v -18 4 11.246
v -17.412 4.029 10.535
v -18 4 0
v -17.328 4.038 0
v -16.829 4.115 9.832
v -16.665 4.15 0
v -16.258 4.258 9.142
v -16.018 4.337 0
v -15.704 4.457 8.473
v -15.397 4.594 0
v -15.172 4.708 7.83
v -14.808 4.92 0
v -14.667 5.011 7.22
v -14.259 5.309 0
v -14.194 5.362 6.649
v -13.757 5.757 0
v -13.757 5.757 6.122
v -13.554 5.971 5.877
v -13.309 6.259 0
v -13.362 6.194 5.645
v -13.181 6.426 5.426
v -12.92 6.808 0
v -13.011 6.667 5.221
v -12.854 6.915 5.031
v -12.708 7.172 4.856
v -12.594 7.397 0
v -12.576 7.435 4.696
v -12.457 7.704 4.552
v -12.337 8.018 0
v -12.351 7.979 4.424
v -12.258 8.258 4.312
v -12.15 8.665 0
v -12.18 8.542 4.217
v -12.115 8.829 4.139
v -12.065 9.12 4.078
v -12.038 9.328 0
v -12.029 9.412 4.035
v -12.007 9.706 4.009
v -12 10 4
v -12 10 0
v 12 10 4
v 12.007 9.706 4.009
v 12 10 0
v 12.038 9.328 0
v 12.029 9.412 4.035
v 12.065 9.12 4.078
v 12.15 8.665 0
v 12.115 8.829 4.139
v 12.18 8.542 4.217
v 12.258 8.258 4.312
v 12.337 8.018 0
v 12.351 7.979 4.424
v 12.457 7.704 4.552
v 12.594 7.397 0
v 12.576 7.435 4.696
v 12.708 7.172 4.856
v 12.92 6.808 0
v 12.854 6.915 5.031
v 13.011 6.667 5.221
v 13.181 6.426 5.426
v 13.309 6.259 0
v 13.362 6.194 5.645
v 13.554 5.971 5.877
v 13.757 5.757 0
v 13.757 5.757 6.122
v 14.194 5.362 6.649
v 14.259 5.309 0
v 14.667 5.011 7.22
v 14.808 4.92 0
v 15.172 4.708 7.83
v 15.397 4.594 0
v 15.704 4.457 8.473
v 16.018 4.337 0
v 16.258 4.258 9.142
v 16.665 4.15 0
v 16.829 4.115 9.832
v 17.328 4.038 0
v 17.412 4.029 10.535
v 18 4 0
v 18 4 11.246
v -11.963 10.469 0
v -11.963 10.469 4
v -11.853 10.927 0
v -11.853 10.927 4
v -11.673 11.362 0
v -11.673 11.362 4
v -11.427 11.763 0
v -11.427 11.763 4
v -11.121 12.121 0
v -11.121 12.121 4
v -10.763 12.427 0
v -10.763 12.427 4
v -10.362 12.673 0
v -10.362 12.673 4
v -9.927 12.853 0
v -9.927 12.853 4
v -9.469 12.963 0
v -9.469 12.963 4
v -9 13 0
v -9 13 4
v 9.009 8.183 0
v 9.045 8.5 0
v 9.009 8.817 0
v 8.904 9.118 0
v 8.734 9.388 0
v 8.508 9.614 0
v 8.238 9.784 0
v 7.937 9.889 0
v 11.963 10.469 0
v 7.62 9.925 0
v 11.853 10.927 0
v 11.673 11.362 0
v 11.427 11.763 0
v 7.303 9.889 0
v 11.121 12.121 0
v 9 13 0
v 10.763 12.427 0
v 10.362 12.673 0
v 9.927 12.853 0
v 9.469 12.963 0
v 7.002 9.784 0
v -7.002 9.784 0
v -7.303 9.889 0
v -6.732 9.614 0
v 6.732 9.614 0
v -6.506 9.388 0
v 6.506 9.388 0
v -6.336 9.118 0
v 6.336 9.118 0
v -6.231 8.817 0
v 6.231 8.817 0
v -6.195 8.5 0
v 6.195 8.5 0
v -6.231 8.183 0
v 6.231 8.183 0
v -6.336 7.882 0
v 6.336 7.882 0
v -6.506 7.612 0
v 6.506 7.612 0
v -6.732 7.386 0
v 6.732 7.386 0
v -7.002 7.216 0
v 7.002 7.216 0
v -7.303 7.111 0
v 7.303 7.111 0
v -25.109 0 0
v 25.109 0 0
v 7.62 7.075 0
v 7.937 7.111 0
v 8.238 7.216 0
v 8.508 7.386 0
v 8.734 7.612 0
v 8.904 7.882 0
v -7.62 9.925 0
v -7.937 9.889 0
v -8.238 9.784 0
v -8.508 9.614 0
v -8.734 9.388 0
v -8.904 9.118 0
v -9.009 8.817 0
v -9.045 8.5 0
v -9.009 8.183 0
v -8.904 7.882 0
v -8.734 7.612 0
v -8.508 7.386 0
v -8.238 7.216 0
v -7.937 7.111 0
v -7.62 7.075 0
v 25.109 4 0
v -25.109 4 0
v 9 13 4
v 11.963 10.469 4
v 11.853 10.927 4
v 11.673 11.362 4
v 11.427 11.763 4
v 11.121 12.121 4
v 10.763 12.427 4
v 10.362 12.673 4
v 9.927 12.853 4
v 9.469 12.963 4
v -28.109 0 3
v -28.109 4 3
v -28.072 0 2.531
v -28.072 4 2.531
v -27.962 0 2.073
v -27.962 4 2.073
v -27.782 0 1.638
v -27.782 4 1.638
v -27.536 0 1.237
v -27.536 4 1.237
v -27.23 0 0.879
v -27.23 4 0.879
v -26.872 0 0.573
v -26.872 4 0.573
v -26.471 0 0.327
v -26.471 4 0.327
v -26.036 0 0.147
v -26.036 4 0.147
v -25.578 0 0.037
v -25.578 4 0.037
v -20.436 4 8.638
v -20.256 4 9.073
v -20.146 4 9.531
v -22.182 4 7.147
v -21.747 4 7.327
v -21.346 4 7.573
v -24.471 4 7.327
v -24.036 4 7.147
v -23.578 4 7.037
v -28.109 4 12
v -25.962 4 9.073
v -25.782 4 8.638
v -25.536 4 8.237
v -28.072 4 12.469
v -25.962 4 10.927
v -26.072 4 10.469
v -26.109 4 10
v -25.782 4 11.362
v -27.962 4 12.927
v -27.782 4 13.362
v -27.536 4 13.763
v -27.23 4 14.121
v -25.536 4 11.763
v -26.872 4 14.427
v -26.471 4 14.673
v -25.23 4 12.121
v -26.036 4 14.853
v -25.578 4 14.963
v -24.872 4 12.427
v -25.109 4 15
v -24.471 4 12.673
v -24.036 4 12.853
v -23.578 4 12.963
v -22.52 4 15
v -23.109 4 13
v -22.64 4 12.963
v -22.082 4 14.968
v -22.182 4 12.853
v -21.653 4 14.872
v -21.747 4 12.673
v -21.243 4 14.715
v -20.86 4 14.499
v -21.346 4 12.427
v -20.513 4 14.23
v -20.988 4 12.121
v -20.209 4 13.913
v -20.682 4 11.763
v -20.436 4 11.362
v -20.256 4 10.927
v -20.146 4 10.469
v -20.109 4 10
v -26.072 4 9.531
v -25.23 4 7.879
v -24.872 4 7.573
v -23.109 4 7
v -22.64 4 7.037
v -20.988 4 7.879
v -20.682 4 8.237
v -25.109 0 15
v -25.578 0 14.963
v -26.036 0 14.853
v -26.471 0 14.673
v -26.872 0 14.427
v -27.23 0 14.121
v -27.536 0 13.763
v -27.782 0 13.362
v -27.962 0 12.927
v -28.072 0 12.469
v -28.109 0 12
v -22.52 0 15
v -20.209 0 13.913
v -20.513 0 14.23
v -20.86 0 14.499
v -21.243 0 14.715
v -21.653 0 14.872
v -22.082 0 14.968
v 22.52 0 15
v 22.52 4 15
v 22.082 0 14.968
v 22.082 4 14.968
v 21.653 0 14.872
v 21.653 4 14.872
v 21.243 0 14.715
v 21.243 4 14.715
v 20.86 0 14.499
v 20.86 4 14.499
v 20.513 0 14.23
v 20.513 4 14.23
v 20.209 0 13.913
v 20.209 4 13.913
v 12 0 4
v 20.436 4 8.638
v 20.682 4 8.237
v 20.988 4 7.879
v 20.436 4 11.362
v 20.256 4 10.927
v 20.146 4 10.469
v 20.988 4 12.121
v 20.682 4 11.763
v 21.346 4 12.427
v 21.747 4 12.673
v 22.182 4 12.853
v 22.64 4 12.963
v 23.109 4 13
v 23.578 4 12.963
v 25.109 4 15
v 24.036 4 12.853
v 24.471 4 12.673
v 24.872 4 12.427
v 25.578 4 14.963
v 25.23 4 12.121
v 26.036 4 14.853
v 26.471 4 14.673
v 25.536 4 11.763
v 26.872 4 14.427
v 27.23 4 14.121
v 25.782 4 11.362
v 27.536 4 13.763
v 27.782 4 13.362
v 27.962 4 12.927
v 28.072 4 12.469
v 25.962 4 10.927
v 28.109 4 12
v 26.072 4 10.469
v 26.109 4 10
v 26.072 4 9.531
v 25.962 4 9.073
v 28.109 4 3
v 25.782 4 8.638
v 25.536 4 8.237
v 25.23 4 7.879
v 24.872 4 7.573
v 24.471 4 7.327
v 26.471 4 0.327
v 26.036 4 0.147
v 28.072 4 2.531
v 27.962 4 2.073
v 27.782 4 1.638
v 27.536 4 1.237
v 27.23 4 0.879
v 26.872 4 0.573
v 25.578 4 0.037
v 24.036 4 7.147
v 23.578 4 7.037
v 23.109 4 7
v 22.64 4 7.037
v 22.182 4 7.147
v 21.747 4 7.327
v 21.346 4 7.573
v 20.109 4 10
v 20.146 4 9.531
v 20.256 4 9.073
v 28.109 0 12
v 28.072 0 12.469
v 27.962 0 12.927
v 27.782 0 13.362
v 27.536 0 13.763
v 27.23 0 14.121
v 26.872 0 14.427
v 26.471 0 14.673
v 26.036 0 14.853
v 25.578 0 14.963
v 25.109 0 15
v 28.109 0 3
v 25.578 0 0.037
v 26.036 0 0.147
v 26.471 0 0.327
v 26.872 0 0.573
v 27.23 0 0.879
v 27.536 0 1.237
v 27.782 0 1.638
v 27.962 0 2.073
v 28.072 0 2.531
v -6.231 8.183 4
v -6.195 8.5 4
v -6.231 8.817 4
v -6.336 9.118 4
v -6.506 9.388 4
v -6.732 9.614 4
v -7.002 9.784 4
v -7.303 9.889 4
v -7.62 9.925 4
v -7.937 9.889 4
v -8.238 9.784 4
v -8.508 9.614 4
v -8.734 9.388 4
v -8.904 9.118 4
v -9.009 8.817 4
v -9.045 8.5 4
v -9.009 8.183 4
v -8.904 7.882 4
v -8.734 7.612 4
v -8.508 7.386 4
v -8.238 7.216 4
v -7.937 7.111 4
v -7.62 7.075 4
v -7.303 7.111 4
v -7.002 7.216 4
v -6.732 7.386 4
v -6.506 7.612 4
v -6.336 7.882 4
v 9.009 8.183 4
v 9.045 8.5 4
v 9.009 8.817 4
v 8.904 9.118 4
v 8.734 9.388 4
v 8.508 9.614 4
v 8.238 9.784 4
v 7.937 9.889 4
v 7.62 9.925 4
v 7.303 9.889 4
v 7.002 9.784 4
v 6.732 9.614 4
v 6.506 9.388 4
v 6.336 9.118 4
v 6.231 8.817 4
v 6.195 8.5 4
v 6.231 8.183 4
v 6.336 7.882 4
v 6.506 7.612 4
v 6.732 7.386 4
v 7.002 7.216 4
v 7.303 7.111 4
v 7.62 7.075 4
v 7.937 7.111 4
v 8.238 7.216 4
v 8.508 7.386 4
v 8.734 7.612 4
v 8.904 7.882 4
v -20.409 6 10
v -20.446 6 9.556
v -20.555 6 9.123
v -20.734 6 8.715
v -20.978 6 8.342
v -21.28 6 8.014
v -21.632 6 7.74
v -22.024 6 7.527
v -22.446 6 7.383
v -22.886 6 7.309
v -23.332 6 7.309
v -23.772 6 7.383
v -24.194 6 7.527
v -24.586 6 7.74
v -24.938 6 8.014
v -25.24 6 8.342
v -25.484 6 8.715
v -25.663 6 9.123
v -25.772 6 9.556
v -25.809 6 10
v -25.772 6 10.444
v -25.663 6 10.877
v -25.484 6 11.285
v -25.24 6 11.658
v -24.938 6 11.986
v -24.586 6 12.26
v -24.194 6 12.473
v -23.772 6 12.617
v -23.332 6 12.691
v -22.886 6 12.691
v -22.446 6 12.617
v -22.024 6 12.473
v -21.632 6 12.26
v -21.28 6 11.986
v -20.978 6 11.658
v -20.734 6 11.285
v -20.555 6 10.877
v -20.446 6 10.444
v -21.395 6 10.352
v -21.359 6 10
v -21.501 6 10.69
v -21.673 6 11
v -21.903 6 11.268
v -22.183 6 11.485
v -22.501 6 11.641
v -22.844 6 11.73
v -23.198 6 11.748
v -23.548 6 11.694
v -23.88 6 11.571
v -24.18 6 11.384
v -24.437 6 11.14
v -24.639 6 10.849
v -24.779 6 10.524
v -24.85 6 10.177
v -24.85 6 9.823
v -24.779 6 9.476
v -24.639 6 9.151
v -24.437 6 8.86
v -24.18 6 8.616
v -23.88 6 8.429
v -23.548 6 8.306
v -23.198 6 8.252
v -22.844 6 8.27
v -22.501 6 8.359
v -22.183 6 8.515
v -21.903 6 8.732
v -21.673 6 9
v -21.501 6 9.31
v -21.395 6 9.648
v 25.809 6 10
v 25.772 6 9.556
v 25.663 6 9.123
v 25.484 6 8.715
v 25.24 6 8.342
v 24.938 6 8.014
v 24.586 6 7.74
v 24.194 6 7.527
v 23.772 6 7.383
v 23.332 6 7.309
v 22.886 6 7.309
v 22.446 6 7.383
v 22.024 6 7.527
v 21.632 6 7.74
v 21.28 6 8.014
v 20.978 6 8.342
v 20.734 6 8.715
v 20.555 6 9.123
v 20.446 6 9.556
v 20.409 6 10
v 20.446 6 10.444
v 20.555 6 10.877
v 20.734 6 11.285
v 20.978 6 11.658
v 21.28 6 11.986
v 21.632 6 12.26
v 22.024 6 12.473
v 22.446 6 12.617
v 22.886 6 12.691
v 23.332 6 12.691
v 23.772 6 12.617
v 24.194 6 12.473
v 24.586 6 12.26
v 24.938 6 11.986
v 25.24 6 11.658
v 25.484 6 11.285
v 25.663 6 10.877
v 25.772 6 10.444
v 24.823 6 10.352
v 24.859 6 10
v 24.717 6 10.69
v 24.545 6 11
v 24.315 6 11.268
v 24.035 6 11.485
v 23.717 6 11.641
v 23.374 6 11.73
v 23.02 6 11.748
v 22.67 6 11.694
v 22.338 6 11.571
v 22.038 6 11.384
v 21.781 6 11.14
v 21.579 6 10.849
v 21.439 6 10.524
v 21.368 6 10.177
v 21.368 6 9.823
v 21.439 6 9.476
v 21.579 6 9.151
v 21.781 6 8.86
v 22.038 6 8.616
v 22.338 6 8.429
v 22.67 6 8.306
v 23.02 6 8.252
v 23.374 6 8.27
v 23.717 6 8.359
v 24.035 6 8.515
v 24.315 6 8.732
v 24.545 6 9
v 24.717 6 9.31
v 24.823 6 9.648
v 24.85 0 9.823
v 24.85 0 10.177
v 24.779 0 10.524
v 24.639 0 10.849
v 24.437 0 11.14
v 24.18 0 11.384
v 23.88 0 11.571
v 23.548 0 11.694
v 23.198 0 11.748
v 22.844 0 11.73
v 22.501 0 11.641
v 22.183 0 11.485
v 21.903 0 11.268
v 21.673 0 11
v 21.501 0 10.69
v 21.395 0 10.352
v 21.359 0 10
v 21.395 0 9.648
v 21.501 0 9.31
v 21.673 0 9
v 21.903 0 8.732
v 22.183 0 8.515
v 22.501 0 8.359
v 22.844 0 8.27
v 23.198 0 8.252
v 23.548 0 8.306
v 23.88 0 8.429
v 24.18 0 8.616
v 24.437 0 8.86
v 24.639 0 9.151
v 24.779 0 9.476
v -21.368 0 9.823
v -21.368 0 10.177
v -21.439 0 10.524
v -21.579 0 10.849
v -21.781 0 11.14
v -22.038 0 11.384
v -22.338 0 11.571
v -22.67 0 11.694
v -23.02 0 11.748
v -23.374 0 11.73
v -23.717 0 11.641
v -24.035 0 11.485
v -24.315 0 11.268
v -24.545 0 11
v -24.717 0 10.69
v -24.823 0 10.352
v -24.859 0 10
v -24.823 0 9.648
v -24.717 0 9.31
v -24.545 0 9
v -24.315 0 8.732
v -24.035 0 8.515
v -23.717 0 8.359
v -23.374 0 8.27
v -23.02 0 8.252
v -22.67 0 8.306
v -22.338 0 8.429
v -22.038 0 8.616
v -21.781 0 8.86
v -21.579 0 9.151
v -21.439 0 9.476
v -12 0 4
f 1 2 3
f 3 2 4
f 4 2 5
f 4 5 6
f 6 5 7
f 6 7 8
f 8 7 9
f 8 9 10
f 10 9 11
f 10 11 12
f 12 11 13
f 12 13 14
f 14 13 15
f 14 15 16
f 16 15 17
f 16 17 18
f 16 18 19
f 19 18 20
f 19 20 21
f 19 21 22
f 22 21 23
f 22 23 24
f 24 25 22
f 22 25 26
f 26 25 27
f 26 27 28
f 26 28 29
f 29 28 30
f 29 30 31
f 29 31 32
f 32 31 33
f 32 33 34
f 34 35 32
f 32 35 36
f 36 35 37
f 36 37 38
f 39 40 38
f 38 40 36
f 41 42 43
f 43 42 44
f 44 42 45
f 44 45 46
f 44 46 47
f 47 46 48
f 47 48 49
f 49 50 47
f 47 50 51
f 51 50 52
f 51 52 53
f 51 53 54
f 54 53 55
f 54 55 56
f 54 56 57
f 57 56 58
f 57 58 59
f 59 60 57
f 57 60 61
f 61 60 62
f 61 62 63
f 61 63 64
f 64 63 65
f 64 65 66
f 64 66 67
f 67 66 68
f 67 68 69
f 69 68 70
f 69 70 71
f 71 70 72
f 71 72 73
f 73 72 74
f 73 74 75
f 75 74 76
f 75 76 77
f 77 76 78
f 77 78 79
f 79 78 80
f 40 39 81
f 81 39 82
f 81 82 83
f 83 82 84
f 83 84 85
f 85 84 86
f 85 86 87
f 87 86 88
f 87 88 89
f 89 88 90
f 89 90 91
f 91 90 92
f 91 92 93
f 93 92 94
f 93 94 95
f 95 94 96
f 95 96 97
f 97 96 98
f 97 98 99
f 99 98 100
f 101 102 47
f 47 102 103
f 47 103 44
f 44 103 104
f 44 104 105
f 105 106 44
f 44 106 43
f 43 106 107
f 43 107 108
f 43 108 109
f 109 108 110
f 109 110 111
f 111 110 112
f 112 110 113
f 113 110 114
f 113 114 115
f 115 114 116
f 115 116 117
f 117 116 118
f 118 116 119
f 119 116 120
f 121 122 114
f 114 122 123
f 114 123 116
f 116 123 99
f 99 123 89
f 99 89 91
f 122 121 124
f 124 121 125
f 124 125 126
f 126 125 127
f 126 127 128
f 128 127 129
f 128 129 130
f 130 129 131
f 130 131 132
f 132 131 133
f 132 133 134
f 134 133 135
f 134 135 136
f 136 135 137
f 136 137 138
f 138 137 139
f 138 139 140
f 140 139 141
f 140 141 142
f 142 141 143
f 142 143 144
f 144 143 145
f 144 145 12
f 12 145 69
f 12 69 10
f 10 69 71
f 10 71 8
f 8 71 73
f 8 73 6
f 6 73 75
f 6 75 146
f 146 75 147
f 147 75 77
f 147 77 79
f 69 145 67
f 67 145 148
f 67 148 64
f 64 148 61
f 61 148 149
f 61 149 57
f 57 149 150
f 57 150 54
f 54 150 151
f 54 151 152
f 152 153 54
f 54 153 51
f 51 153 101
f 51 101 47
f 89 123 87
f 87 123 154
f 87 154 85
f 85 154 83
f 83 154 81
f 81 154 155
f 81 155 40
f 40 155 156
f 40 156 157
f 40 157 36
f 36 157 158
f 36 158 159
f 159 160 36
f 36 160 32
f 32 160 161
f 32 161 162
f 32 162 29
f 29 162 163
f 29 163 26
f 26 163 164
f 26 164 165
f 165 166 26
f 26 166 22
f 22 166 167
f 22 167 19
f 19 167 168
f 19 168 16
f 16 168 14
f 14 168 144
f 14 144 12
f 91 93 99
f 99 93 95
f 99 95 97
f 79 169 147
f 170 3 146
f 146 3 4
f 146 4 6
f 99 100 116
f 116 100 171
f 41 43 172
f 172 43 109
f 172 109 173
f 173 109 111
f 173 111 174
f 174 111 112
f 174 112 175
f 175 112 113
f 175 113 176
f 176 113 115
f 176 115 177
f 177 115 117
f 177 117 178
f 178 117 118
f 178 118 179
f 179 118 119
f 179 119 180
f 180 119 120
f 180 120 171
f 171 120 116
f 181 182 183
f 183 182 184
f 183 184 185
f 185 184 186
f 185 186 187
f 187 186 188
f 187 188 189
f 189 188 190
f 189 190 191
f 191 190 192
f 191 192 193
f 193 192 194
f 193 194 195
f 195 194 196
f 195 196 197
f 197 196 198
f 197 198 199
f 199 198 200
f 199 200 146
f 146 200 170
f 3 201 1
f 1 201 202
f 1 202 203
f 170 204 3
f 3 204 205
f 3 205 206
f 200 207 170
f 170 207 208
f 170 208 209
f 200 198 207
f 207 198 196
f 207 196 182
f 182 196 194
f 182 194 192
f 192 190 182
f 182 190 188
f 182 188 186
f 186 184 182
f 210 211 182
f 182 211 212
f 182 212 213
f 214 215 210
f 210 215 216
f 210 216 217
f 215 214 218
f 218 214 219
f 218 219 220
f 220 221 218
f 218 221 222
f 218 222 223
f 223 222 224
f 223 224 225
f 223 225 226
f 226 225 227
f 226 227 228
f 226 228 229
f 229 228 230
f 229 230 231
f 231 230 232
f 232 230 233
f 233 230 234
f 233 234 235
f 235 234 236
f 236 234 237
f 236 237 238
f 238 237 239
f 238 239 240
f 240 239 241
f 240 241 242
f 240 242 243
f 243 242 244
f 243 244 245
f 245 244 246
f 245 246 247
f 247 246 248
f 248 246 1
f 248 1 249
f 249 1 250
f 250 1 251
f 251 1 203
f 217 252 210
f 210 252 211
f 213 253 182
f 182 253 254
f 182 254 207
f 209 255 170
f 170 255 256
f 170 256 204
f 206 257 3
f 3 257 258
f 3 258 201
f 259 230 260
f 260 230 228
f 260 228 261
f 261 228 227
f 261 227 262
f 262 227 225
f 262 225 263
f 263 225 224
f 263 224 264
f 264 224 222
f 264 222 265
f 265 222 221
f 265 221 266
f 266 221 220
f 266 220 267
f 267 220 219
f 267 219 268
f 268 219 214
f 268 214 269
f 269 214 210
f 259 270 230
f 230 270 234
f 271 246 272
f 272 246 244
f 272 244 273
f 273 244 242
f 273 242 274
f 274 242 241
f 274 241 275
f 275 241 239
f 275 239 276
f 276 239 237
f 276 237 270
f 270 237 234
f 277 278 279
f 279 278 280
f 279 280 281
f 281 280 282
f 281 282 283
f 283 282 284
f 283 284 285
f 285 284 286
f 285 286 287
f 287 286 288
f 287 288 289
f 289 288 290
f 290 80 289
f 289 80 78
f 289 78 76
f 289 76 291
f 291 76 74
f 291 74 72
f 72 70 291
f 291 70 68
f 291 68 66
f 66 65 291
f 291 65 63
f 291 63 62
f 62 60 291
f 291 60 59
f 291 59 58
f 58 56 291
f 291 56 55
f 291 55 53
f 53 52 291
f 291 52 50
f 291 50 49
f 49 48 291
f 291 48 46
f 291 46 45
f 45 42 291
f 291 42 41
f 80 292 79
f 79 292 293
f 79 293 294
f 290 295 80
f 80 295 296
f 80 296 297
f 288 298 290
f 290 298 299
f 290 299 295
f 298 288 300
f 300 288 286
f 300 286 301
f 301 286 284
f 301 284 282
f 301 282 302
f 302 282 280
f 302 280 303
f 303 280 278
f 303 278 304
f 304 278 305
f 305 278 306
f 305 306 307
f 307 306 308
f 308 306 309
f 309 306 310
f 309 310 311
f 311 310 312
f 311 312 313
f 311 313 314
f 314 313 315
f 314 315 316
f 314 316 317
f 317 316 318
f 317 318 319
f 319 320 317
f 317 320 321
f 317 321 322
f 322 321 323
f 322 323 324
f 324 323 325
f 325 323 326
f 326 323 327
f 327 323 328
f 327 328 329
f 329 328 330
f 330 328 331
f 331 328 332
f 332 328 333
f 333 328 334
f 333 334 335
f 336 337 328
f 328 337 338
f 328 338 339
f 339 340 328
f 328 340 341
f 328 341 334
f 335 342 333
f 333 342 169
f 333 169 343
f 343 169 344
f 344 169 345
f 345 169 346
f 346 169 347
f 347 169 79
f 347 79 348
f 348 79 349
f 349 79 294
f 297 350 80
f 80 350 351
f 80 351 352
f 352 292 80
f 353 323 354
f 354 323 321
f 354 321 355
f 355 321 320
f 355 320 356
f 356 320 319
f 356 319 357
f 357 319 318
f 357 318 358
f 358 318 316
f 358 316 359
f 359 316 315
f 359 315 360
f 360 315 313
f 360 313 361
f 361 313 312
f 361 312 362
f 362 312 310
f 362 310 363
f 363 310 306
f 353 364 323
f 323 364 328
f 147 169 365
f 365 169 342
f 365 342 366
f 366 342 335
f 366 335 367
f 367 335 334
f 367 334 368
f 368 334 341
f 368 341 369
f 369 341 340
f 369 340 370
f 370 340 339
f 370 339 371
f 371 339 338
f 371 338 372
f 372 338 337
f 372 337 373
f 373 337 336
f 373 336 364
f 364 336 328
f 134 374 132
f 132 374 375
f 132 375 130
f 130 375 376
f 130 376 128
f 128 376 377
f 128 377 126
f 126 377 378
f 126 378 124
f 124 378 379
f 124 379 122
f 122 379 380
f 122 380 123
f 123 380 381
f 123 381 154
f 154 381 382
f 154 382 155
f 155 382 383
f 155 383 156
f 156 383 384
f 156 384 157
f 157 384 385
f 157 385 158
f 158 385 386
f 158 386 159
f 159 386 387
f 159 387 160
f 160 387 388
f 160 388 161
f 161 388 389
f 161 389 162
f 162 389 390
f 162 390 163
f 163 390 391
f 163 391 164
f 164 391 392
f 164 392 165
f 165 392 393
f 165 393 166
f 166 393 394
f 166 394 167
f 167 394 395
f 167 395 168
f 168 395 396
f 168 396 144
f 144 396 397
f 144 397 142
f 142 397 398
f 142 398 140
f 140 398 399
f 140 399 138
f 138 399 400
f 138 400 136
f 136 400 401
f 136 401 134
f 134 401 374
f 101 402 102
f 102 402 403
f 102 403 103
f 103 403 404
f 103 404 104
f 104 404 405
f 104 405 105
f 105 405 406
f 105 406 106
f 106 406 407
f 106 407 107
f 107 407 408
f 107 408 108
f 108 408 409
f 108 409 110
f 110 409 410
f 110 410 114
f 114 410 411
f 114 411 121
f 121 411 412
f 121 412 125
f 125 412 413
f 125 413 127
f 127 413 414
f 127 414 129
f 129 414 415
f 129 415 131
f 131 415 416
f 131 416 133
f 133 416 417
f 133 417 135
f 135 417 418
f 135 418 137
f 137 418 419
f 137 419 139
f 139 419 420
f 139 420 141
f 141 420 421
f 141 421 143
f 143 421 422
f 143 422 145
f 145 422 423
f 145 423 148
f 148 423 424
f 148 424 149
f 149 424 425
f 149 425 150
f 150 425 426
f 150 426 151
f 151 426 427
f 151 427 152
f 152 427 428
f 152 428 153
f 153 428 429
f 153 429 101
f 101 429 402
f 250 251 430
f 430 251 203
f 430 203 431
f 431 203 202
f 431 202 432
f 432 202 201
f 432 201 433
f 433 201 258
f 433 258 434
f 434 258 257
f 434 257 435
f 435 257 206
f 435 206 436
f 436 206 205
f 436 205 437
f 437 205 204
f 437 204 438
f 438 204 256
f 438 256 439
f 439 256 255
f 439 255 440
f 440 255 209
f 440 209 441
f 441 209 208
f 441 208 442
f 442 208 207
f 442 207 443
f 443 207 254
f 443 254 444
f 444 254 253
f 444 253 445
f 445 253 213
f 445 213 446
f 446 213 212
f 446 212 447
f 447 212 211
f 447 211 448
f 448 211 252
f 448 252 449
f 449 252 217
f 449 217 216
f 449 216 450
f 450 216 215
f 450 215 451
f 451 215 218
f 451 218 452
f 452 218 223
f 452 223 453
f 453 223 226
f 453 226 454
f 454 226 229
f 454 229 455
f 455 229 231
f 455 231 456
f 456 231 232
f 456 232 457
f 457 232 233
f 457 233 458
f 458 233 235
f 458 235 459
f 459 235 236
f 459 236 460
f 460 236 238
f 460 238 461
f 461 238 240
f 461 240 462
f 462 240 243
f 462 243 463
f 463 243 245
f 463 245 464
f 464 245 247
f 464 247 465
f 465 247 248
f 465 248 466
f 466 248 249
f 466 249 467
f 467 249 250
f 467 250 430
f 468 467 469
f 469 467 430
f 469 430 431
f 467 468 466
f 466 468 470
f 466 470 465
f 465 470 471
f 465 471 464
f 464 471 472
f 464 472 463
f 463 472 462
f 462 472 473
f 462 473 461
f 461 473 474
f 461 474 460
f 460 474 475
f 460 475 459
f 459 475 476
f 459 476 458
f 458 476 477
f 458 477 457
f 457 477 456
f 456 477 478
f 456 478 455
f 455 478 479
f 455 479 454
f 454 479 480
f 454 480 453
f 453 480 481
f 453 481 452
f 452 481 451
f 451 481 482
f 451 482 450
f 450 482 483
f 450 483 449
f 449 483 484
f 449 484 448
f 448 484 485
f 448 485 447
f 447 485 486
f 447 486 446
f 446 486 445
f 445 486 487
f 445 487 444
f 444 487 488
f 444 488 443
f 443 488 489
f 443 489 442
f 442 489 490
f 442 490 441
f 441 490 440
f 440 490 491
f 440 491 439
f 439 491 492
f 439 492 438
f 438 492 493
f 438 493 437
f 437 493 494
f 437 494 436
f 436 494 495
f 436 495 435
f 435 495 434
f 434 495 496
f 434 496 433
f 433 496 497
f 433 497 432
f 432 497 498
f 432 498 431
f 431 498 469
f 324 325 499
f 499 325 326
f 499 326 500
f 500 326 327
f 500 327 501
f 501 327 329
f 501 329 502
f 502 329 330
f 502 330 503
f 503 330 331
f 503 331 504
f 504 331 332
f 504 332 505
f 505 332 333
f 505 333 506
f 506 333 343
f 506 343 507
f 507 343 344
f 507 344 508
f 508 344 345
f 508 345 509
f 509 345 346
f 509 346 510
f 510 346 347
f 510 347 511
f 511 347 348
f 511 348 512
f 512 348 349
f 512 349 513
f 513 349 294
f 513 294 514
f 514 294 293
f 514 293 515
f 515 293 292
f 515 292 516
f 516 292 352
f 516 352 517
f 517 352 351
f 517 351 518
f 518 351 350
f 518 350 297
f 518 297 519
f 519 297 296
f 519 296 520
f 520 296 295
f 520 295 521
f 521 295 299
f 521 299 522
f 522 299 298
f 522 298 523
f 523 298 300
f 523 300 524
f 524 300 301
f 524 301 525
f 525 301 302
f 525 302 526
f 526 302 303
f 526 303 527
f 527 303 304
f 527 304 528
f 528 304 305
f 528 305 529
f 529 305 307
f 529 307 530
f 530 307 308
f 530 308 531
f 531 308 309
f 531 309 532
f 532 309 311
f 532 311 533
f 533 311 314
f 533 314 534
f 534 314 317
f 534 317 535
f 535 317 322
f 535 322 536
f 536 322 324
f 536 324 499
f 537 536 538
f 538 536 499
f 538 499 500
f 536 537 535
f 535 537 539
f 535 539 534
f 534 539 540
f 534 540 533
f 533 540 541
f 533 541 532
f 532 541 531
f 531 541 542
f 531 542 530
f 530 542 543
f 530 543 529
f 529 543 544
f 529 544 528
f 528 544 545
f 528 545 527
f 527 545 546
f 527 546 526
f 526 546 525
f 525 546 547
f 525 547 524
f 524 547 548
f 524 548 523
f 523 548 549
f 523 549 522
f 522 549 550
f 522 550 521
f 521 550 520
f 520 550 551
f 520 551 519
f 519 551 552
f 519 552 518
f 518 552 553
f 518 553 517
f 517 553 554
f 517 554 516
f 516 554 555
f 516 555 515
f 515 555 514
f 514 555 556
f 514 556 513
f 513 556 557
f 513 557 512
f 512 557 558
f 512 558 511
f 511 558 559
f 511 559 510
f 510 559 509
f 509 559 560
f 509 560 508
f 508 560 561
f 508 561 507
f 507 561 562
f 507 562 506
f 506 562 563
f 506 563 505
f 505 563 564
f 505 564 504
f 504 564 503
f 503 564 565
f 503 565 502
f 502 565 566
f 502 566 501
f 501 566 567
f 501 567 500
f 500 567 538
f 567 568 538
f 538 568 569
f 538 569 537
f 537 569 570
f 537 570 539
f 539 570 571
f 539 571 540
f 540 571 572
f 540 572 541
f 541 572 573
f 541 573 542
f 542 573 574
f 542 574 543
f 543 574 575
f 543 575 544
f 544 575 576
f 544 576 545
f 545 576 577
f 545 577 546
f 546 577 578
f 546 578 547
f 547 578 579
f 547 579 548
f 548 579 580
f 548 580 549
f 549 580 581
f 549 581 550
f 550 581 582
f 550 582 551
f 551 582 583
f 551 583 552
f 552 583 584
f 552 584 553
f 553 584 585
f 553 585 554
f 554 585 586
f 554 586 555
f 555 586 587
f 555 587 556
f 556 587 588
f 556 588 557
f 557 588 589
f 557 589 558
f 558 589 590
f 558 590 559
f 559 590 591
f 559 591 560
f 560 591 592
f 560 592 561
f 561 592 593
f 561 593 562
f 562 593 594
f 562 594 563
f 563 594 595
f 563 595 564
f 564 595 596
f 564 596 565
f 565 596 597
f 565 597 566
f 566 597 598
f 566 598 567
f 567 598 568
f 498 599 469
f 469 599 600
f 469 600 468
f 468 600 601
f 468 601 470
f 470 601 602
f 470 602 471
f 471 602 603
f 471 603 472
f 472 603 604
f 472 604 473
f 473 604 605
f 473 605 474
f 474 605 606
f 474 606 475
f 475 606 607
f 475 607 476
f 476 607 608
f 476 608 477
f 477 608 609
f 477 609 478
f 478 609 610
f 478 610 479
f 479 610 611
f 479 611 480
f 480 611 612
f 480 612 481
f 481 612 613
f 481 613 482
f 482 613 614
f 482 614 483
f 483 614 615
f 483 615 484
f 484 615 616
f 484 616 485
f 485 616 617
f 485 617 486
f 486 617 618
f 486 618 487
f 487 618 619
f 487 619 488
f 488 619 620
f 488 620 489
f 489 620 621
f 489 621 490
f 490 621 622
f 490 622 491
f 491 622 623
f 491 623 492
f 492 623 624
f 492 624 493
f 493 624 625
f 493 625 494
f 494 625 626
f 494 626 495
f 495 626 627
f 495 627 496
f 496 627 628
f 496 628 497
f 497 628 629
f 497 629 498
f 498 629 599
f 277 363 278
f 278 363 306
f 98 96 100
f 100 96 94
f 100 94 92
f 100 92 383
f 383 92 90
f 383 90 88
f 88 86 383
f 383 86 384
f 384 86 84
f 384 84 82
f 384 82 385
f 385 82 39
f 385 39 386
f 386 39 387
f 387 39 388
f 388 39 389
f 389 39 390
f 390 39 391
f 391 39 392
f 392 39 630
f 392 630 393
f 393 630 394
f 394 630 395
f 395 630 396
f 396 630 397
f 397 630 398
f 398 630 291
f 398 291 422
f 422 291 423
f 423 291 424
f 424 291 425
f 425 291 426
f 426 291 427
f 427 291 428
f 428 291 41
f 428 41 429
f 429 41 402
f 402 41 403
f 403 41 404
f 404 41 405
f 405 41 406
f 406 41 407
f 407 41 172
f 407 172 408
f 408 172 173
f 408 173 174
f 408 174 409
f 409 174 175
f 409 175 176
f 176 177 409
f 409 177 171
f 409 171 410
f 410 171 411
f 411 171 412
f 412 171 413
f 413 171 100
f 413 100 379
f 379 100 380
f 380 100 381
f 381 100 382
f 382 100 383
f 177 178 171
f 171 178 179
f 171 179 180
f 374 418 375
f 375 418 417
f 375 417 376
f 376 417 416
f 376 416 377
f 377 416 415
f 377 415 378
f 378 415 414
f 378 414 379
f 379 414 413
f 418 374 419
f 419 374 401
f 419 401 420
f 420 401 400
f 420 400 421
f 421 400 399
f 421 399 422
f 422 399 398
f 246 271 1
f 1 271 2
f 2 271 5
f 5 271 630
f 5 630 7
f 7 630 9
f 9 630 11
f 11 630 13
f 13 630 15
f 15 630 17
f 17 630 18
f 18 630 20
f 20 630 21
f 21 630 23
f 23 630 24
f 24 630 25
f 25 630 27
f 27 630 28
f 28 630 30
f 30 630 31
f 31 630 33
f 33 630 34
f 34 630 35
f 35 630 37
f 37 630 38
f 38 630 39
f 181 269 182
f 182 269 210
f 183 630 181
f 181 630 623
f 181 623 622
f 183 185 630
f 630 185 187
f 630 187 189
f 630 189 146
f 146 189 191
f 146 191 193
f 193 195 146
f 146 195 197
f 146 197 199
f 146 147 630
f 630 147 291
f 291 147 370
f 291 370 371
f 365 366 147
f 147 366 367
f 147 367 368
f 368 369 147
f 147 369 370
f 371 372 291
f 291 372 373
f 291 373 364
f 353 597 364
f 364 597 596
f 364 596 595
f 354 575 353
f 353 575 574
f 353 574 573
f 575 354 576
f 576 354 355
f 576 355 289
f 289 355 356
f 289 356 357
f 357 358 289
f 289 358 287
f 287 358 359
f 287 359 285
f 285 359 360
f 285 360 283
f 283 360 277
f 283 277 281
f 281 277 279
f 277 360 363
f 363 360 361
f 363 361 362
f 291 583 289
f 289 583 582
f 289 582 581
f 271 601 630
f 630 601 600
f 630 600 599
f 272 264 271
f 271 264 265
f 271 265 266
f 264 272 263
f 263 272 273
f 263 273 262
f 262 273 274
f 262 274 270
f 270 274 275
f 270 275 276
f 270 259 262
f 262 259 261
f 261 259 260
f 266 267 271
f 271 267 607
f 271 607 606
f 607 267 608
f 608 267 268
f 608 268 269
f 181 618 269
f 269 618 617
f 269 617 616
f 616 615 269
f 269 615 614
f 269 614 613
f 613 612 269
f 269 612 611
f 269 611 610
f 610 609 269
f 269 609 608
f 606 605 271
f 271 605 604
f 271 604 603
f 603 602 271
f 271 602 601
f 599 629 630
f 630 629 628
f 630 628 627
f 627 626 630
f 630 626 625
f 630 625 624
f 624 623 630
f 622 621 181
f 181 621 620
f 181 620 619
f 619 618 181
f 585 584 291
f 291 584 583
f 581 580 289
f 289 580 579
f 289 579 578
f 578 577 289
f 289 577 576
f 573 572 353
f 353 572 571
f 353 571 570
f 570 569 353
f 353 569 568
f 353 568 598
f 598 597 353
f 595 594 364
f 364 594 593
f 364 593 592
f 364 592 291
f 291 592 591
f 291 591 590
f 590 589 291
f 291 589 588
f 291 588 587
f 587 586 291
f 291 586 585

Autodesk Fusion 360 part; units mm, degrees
sketch "Sketch1" plane through (0, 0, 0) normal (0, 1, 0) x (1, 0, 0)
  line L0 (0, 0) -> (-28.109, 0)
  line L1 (-28.109, 0) -> (-28.109, -15)
  line L2 (-28.109, -15) -> (-21.109, -15)
  line L3 (-21.109, -15) -> (-12, -4)
  line L4 (-12, -4) -> (0, -4)
  line L5 (0, -4) -> (0, 0)
  circle A0 centre (-23.109, -10) radius 1.75
  line L6 (0, -1.75) -> (0, -22.5)
  line L7 (0, 0) -> (28.109, 0)
  line L8 (28.109, 0) -> (28.109, -15)
  line L9 (28.109, -15) -> (21.109, -15)
  line L10 (12, -4) -> (0, -4)
  line L11 (0, -4) -> (0, 0)
  line L12 (21.109, -15) -> (12, -4)
  circle A1 centre (23.109, -10) radius 1.75
  dimension "d1" = 23.109
  dimension "d2" = 3.5
  dimension "d3" = 10
  dimension "d4" = 5
  dimension "d5" = 5
  dimension "d6" = 7
  dimension "d8" = 12
  dimension "d9" = 4
extrude "Extrude1" add sketch "Sketch1" along normal blind 4
sketch "Sketch2" plane through (0, 4, 0) normal (0, 1, 0) x (-1, 0, 0)
  circle A0 centre (23.109, 10) radius 1.75
  circle A1 centre (-23.109, 10) radius 1.75
  line L0 (-28.109, 0) -> (28.109, 0)
  line L1 (28.109, 0) -> (28.109, 15)
  line L2 (28.109, 15) -> (21.109, 15)
  line L3 (21.109, 15) -> (12, 4)
  line L4 (12, 4) -> (-12, 4)
  line L5 (-12, 4) -> (-21.109, 15)
  line L6 (-21.109, 15) -> (-28.109, 15)
  line L7 (-28.109, 15) -> (-28.109, 0)
  line L8 (-12, 4) -> (12, 4)
  line L9 (12, 4) -> (12, 0)
  line L10 (12, 0) -> (-12, 0)
  line L11 (-12, 0) -> (-12, 4)
extrude "Extrude2" add sketch "Sketch2" along normal blind 9 contours L0 L4 L8 L9 L10 L11
sketch "Sketch3" plane through (0, 4, 0) normal (0, 1, 0) x (-1, 0, 0)
  line L0 (12, 4) -> (12, 0)
  line L1 (12, 0) -> (28.109, 0)
  line L2 (28.109, 0) -> (28.109, 15)
  line L3 (28.109, 15) -> (21.109, 15)
  line L4 (21.109, 15) -> (12, 4)
  circle A0 centre (23.109, 10) radius 1.75
  circle A1 centre (23.109, 10) radius 3
  line L5 (-12, 0) -> (-12, 4)
  line L6 (-12, 4) -> (-21.109, 15)
  line L7 (-21.109, 15) -> (-28.109, 15)
  line L8 (-28.109, 15) -> (-28.109, 0)
  line L9 (-28.109, 0) -> (-12, 0)
  circle A2 centre (-23.109, 10) radius 1.75
  circle A3 centre (-23.109, 10) radius 3
  dimension "d14" = 6
extrude "Extrude3" add sketch "Sketch3" along normal blind 2 contours A1 | A3
chamfer "Chamfer1" distance 0.3 distance2 2 2 edges at (25.906, 6, 8.9152) (-20.312, 6, 8.9152) measured on face at (20.5434, 6, 9.764) measured on face at (-25.6746, 6, 9.764)
sketch "Sketch4" plane through (0, 0, 4) normal (0, 0, 1) x (-1, 0, 0)
  line L0 (12, 0) -> (-12, 0)
  line L1 (-12, 0) -> (-12, -4)
  line L2 (-12, -4) -> (-12, -13)
  line L3 (-12, -13) -> (12, -13)
  line L4 (12, -13) -> (12, -4)
  line L5 (12, -4) -> (12, 0)
  line L6 (0, 0) -> (0, -19.3356) construction
  circle A0 centre (7.62, -8.5) radius 1.425
  circle A1 centre (-7.62, -8.5) radius 1.425
  dimension "d19" = 7.62
  dimension "d20" = 2.85
  dimension "d21" = 8.5
extrude "Extrude4" cut sketch "Sketch4" against normal blind 10 contours A0 | A1
fillet "Fillet1" radius 3 8 edges at (28.109, 2, 0) (28.109, 2, 15) (21.109, 2, 15) (-21.109, 2, 15) (-28.109, 2, 15) (-28.109, 2, 0) (12, 13, 2) (-12, 13, 2)
fillet "Fillet2" radius 6 2 edges at (12, 4, 2) (-12, 4, 2)
equation "d1 = ( 46.218 / 2 ) * 1 mm"
